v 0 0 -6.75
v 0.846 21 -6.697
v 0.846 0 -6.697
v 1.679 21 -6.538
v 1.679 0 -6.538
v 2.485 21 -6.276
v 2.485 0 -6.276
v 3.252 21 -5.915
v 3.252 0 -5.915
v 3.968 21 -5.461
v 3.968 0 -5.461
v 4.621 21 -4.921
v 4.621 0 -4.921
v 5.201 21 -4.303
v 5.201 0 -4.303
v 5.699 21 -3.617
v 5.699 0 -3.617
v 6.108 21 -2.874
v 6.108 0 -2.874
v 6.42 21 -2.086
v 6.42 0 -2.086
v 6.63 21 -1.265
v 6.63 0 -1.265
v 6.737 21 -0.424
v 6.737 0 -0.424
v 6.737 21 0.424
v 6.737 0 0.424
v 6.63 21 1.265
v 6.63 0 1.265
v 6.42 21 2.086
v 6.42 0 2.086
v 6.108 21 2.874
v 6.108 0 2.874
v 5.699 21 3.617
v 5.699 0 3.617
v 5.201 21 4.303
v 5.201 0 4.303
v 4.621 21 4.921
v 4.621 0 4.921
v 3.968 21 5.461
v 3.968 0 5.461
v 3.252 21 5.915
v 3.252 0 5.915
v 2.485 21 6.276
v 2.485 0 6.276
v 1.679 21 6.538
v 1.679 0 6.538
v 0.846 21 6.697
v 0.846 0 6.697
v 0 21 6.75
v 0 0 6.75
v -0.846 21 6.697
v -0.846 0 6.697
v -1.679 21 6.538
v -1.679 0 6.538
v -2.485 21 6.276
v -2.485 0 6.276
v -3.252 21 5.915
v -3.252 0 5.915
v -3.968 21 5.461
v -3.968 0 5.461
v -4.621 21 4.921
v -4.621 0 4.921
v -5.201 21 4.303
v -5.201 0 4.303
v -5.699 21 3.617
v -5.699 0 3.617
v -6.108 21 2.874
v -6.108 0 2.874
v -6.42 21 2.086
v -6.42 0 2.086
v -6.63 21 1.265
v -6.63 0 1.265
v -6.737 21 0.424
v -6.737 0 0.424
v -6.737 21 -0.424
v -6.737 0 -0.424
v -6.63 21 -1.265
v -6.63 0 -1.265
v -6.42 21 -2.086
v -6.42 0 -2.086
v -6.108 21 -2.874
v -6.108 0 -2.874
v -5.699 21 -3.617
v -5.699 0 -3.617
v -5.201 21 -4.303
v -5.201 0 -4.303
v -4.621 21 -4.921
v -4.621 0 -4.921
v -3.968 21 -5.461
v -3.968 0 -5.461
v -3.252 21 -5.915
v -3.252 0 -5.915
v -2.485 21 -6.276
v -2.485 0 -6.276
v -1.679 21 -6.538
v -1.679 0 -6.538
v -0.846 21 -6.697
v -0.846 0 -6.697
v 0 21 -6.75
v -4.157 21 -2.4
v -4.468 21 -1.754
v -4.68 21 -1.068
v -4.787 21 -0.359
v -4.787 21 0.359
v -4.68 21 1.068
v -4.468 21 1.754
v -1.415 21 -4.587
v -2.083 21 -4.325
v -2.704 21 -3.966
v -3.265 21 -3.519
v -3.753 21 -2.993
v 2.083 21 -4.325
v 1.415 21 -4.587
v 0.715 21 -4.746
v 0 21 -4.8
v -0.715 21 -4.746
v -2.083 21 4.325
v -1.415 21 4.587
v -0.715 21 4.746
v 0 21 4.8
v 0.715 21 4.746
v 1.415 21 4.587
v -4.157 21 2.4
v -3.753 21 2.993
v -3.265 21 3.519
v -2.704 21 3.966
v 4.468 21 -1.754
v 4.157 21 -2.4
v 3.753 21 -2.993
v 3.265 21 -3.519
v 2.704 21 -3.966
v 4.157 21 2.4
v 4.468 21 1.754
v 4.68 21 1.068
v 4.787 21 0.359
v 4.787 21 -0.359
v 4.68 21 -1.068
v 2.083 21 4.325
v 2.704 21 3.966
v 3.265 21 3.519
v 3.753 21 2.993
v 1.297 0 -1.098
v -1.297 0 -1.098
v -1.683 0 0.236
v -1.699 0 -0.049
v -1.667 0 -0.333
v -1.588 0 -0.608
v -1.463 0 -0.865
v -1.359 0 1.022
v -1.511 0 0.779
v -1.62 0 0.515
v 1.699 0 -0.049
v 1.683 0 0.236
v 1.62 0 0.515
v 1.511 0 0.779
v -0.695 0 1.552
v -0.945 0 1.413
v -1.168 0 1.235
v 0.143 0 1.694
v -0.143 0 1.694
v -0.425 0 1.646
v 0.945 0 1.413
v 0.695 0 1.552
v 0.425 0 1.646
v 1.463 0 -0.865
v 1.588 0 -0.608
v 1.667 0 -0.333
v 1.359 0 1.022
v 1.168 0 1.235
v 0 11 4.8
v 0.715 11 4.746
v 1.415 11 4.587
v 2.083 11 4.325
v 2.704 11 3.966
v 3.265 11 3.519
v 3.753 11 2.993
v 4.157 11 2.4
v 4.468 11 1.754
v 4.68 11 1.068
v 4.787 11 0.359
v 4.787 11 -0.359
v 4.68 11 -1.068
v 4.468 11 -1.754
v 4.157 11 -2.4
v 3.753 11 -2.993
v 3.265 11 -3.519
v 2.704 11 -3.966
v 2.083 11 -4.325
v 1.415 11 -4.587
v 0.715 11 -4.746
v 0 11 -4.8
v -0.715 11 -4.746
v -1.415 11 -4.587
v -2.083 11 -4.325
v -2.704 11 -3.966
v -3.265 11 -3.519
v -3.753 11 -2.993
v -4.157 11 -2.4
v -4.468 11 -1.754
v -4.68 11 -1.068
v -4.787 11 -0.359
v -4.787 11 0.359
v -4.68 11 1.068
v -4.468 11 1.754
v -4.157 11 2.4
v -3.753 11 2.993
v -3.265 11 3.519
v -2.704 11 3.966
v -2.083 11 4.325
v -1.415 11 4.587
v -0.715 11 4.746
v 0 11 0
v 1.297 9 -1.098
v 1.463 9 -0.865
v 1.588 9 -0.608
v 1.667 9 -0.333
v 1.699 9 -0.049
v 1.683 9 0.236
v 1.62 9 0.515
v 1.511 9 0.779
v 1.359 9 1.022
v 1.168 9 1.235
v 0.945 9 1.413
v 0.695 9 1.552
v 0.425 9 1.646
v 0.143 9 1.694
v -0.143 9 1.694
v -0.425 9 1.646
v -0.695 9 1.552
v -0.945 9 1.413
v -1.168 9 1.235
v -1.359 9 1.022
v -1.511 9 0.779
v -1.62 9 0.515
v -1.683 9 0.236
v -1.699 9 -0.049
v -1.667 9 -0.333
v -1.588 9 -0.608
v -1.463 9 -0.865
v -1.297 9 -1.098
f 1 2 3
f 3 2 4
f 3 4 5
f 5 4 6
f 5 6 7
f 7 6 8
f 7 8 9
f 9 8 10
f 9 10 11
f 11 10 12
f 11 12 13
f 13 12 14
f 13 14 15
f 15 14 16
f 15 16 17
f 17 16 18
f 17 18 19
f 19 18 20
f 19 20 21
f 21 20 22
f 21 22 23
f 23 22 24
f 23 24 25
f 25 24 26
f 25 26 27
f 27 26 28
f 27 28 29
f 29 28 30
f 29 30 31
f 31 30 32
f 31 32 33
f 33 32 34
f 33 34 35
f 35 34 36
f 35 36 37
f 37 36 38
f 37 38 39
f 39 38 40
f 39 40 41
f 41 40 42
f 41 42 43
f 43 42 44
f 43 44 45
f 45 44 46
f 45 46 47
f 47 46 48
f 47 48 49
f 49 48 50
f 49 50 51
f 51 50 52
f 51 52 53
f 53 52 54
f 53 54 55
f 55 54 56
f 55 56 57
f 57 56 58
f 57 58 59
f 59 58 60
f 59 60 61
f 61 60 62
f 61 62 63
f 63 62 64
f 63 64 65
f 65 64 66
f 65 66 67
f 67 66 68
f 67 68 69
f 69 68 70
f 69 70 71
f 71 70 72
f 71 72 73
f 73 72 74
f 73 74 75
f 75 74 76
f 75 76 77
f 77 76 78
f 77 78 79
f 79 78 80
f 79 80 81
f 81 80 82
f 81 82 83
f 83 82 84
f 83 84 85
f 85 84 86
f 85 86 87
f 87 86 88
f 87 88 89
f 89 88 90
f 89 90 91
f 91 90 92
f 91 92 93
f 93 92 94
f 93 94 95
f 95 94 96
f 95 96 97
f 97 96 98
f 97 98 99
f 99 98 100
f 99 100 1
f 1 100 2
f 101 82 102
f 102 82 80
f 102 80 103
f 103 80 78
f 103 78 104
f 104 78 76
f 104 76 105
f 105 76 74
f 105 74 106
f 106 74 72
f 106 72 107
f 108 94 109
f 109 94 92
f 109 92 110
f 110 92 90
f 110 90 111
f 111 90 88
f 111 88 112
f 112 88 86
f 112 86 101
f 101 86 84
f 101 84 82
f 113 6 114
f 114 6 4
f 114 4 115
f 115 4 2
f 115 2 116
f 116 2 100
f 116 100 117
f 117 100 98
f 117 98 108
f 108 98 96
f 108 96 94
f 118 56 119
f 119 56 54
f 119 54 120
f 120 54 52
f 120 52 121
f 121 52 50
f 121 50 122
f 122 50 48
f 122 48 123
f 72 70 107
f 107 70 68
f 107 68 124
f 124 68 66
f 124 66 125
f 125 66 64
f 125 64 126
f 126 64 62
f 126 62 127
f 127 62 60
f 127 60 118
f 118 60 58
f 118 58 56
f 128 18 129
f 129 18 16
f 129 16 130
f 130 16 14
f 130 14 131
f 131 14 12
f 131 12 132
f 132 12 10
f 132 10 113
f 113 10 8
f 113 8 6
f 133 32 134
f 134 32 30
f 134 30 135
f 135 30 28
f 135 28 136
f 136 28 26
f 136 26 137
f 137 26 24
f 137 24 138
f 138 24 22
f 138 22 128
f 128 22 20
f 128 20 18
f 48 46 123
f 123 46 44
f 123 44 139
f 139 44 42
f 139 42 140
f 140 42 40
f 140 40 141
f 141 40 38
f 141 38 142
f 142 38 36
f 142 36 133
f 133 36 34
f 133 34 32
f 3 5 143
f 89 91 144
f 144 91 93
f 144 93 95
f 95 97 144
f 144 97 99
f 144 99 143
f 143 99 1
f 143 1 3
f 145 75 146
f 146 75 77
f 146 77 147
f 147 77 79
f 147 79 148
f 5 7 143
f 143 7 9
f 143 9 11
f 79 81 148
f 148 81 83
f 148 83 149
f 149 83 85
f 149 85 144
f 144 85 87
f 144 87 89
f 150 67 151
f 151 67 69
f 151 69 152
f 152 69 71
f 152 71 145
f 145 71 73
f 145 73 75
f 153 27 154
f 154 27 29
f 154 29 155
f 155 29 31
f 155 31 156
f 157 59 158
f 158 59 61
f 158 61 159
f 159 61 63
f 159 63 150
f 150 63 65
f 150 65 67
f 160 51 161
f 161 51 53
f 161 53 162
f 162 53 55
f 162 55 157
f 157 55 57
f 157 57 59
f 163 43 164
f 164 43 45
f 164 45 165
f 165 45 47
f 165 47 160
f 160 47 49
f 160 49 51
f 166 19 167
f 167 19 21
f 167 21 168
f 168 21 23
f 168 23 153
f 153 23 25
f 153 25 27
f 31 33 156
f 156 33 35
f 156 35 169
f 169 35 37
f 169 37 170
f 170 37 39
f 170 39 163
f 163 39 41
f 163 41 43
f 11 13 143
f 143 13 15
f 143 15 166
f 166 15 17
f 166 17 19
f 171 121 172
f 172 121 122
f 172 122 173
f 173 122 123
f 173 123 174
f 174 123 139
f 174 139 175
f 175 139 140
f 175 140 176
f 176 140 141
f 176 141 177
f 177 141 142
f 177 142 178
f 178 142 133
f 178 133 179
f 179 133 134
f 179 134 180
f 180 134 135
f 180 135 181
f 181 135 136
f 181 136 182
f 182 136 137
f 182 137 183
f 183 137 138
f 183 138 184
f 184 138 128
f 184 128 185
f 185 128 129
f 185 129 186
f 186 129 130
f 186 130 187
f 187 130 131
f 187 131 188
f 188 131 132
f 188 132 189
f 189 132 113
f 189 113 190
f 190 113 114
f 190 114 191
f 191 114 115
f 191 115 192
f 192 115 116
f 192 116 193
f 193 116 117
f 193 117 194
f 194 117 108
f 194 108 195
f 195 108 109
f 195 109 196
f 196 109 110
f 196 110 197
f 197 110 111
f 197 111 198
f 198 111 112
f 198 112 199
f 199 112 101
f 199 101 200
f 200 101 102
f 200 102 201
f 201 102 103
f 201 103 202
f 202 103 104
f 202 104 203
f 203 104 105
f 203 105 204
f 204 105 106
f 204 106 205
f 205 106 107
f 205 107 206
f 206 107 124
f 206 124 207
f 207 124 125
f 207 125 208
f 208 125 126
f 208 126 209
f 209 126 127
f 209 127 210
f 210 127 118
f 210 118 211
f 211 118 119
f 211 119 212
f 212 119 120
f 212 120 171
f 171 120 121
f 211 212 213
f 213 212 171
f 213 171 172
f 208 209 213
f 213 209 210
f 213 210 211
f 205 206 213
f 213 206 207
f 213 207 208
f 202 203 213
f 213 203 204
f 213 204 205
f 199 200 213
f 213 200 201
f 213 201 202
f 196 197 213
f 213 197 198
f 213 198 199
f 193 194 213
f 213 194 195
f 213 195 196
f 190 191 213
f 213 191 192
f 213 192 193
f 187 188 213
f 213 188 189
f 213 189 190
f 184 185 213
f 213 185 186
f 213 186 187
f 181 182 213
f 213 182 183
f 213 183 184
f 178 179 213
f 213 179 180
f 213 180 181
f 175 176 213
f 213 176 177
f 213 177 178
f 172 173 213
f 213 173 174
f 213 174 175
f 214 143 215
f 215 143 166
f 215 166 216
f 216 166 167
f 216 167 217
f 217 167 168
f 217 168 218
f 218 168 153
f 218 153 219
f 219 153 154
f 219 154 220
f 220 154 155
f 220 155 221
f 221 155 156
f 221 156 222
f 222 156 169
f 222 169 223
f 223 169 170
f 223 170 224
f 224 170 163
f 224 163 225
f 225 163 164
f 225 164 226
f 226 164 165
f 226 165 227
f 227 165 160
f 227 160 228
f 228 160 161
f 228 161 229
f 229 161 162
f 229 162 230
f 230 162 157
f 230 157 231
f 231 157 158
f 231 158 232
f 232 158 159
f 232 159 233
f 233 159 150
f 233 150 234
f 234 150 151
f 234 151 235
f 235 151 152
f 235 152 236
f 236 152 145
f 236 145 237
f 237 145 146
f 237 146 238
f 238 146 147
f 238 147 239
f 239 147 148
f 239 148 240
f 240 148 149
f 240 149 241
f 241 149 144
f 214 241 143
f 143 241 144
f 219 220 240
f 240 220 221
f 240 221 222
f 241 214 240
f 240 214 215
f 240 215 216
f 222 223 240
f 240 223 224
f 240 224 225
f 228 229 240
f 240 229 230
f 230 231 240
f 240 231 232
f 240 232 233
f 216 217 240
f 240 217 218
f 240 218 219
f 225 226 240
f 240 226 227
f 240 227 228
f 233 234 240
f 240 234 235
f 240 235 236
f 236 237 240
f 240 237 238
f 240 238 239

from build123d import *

# Parameters (mm, degrees)
SKETCH1_R           = 6.75
BOSS_EXTRUDE1_DEPTH = 21
SKETCH2_R           = 4.8
CUT_EXTRUDE1_DEPTH  = 10
CUT_EXTRUDE2_DEPTH  = 9


with BuildPart() as part:
    # Sketch1 → Boss-Extrude1 (new body)
    with BuildSketch(Plane(origin=(0, 0, 0), x_dir=(1, 0, 0), z_dir=(0, 1, 0))):
        Circle(SKETCH1_R)
    extrude(amount=BOSS_EXTRUDE1_DEPTH)

    # Sketch2 → Cut-Extrude1 (cut)
    with BuildSketch(Plane(origin=(0, 21, 0), x_dir=(1, 0, 0), z_dir=(0, 1, 0))):
        Circle(SKETCH2_R)
    extrude(amount=-CUT_EXTRUDE1_DEPTH, mode=Mode.SUBTRACT)

    # Sketch3 → Cut-Extrude2 (cut)
    with BuildSketch(Plane.XZ):
        with BuildLine():
            Line((-1.29747386, -1.098435971), (1.29747386, -1.098435971))
            ThreePointArc((1.29747386, -1.098435971), (0, 1.7), (-1.29747386, -1.098435971))
        make_face()
    extrude(amount=-CUT_EXTRUDE2_DEPTH, mode=Mode.SUBTRACT)


solid = part.part
